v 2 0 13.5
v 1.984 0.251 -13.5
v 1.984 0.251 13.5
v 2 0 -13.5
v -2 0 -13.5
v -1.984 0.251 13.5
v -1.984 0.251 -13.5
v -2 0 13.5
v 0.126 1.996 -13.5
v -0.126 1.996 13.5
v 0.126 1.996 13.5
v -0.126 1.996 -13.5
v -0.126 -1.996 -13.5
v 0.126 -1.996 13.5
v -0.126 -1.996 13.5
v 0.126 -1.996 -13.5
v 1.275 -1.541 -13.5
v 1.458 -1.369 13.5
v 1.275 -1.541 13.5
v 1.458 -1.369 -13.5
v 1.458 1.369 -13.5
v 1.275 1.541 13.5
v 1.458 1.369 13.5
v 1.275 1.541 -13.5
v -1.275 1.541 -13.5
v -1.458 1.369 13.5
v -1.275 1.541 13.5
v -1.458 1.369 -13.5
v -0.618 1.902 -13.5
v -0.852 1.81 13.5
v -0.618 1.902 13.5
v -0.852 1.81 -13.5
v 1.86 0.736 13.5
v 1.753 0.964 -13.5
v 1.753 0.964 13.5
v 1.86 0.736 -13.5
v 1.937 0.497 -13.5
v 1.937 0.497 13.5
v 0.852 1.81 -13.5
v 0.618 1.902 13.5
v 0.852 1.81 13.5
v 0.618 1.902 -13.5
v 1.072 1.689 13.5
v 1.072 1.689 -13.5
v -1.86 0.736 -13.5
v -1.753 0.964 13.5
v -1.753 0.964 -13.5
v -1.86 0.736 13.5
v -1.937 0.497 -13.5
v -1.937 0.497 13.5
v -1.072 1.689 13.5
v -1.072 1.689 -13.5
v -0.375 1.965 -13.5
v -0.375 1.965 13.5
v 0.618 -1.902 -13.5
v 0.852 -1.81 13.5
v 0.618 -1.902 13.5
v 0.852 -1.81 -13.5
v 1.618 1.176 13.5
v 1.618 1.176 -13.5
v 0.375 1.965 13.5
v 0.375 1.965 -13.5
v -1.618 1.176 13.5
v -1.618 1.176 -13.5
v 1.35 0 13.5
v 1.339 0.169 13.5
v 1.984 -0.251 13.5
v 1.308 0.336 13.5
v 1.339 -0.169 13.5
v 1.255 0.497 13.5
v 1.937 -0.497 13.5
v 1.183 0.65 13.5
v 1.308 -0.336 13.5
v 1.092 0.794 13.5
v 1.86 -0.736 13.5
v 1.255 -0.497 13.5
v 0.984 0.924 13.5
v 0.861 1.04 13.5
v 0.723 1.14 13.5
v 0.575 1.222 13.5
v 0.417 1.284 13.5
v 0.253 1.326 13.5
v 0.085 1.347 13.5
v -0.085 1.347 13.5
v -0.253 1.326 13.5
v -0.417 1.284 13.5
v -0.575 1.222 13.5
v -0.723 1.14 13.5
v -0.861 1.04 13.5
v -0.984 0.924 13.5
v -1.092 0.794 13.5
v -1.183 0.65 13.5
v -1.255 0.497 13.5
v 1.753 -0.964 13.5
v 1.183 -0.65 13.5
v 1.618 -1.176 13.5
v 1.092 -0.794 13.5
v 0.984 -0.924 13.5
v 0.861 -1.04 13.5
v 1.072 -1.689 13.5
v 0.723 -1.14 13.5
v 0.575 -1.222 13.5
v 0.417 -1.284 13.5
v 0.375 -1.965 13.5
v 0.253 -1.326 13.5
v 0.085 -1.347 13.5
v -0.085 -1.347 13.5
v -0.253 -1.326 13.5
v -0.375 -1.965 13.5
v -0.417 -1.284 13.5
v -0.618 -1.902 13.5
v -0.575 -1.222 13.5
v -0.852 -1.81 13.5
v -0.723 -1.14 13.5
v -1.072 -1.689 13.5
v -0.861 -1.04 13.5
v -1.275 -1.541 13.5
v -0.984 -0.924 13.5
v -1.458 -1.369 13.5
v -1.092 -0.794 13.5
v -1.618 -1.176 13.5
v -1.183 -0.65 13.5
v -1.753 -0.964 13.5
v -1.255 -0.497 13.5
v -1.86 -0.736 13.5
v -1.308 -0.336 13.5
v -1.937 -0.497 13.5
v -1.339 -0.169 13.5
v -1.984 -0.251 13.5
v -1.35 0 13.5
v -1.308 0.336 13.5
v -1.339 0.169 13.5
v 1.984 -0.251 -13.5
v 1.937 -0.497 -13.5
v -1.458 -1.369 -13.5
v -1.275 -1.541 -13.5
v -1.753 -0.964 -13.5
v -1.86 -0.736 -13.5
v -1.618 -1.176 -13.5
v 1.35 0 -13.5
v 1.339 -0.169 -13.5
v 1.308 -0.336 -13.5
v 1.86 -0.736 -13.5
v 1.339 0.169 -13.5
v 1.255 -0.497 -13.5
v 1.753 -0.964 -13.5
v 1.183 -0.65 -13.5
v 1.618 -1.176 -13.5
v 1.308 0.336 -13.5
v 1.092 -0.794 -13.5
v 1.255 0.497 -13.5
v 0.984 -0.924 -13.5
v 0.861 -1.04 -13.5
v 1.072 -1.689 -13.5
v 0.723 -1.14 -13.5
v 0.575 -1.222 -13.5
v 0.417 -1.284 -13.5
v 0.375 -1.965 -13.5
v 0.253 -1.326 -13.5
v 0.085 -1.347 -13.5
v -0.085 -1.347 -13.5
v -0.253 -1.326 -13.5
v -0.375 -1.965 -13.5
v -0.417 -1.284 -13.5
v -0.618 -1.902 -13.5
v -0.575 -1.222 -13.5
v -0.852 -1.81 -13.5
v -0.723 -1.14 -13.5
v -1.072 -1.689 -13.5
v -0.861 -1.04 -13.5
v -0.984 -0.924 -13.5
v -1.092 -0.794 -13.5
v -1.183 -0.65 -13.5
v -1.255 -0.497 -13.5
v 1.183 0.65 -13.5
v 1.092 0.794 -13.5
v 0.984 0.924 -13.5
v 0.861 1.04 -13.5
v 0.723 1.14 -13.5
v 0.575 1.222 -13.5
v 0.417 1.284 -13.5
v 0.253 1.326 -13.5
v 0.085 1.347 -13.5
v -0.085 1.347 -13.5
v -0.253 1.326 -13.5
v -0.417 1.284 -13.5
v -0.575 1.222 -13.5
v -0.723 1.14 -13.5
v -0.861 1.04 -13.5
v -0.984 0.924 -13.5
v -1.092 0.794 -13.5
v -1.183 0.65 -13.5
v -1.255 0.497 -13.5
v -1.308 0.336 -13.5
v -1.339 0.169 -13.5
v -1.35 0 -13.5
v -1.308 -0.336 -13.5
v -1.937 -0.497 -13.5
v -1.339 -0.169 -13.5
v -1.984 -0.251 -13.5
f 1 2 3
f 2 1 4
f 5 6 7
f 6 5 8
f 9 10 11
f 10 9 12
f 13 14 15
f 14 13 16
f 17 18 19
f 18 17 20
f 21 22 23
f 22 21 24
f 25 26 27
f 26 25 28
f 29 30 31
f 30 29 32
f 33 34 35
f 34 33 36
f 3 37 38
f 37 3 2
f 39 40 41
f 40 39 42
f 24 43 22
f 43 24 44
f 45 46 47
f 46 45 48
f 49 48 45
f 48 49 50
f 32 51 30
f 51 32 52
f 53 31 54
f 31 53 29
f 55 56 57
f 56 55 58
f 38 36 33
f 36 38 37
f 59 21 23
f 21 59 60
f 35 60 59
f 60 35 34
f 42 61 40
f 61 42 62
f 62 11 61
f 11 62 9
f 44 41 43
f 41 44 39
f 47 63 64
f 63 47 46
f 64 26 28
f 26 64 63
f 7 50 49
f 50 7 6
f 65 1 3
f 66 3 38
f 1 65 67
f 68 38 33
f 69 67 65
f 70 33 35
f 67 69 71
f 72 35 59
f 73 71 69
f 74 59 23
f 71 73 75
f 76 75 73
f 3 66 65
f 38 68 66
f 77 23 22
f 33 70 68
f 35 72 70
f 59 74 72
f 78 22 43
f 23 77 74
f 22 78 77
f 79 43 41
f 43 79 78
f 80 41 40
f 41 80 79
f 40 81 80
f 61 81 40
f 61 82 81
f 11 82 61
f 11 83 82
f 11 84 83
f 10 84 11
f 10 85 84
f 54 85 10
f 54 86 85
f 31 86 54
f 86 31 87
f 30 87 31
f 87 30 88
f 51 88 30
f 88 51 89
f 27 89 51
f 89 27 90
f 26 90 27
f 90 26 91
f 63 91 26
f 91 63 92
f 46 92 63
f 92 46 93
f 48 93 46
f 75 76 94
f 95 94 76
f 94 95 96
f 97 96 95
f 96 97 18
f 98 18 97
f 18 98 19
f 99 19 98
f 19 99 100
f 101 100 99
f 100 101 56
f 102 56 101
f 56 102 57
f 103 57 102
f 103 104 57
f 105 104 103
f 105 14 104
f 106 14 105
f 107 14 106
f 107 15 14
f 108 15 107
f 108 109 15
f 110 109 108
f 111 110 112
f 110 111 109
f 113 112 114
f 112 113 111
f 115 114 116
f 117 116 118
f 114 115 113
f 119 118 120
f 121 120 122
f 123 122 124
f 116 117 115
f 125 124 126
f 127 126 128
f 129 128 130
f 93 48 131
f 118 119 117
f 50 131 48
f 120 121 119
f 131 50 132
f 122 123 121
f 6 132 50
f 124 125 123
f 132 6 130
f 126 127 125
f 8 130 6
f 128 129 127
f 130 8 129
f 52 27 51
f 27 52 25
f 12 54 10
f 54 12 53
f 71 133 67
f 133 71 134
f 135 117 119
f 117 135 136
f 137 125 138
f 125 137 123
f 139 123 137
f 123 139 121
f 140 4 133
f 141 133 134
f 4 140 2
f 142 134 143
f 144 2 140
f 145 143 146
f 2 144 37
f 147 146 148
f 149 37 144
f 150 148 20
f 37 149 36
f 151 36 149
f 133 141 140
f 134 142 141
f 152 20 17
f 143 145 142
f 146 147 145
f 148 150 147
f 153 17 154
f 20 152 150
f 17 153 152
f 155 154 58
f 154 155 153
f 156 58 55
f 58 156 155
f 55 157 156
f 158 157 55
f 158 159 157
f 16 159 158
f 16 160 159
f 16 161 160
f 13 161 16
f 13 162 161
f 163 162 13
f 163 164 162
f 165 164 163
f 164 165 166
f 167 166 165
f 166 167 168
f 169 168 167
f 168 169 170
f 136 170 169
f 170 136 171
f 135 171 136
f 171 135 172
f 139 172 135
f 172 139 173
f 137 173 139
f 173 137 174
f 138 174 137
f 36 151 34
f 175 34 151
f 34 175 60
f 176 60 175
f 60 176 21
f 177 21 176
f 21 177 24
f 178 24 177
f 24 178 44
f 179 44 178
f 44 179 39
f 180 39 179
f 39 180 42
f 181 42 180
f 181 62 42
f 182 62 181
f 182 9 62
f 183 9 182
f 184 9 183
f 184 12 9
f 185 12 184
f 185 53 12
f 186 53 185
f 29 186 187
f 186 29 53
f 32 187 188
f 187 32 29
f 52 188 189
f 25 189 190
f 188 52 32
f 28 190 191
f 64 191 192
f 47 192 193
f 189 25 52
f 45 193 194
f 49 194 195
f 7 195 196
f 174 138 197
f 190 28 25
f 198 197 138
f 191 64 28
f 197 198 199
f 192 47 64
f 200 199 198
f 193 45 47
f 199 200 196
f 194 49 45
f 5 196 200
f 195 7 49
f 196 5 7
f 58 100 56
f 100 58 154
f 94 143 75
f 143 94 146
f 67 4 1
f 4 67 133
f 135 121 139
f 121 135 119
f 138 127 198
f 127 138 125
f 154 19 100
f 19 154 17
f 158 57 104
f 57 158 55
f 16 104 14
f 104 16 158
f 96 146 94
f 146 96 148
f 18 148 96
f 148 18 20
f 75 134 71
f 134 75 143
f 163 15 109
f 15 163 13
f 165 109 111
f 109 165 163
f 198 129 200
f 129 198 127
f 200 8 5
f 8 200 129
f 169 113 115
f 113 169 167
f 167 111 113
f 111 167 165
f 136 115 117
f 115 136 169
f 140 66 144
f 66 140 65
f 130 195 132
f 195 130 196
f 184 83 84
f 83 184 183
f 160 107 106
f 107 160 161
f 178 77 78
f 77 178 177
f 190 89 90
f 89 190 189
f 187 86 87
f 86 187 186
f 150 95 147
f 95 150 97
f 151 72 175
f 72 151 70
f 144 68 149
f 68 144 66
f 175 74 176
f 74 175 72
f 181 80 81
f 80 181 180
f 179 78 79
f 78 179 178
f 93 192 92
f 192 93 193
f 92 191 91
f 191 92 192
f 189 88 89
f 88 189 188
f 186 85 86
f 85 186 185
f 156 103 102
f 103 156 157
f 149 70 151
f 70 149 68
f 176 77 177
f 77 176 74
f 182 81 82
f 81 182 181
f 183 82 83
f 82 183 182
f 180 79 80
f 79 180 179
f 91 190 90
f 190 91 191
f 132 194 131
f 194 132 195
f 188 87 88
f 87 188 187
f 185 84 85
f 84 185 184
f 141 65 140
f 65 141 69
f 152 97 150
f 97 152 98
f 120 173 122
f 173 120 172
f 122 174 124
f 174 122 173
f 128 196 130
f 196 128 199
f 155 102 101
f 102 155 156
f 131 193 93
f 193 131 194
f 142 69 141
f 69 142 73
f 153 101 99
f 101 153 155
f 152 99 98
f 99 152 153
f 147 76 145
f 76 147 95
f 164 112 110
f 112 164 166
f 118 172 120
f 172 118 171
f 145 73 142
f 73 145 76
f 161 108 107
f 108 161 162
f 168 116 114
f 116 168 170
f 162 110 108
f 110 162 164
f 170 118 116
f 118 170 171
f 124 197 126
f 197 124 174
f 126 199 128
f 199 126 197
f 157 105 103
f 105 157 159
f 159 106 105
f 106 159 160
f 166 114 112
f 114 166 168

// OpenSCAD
$fn = 50;


difference() {
	union() {
		translate(v = [0, 0, -13.5000000000]) {
			cylinder(h = 27, r = 2.0000000000);
		}
	}
	union() {
		translate(v = [0, 0, -100.0000000000]) {
			cylinder(h = 200, r = 1.3500000000);
		}
	}
}
